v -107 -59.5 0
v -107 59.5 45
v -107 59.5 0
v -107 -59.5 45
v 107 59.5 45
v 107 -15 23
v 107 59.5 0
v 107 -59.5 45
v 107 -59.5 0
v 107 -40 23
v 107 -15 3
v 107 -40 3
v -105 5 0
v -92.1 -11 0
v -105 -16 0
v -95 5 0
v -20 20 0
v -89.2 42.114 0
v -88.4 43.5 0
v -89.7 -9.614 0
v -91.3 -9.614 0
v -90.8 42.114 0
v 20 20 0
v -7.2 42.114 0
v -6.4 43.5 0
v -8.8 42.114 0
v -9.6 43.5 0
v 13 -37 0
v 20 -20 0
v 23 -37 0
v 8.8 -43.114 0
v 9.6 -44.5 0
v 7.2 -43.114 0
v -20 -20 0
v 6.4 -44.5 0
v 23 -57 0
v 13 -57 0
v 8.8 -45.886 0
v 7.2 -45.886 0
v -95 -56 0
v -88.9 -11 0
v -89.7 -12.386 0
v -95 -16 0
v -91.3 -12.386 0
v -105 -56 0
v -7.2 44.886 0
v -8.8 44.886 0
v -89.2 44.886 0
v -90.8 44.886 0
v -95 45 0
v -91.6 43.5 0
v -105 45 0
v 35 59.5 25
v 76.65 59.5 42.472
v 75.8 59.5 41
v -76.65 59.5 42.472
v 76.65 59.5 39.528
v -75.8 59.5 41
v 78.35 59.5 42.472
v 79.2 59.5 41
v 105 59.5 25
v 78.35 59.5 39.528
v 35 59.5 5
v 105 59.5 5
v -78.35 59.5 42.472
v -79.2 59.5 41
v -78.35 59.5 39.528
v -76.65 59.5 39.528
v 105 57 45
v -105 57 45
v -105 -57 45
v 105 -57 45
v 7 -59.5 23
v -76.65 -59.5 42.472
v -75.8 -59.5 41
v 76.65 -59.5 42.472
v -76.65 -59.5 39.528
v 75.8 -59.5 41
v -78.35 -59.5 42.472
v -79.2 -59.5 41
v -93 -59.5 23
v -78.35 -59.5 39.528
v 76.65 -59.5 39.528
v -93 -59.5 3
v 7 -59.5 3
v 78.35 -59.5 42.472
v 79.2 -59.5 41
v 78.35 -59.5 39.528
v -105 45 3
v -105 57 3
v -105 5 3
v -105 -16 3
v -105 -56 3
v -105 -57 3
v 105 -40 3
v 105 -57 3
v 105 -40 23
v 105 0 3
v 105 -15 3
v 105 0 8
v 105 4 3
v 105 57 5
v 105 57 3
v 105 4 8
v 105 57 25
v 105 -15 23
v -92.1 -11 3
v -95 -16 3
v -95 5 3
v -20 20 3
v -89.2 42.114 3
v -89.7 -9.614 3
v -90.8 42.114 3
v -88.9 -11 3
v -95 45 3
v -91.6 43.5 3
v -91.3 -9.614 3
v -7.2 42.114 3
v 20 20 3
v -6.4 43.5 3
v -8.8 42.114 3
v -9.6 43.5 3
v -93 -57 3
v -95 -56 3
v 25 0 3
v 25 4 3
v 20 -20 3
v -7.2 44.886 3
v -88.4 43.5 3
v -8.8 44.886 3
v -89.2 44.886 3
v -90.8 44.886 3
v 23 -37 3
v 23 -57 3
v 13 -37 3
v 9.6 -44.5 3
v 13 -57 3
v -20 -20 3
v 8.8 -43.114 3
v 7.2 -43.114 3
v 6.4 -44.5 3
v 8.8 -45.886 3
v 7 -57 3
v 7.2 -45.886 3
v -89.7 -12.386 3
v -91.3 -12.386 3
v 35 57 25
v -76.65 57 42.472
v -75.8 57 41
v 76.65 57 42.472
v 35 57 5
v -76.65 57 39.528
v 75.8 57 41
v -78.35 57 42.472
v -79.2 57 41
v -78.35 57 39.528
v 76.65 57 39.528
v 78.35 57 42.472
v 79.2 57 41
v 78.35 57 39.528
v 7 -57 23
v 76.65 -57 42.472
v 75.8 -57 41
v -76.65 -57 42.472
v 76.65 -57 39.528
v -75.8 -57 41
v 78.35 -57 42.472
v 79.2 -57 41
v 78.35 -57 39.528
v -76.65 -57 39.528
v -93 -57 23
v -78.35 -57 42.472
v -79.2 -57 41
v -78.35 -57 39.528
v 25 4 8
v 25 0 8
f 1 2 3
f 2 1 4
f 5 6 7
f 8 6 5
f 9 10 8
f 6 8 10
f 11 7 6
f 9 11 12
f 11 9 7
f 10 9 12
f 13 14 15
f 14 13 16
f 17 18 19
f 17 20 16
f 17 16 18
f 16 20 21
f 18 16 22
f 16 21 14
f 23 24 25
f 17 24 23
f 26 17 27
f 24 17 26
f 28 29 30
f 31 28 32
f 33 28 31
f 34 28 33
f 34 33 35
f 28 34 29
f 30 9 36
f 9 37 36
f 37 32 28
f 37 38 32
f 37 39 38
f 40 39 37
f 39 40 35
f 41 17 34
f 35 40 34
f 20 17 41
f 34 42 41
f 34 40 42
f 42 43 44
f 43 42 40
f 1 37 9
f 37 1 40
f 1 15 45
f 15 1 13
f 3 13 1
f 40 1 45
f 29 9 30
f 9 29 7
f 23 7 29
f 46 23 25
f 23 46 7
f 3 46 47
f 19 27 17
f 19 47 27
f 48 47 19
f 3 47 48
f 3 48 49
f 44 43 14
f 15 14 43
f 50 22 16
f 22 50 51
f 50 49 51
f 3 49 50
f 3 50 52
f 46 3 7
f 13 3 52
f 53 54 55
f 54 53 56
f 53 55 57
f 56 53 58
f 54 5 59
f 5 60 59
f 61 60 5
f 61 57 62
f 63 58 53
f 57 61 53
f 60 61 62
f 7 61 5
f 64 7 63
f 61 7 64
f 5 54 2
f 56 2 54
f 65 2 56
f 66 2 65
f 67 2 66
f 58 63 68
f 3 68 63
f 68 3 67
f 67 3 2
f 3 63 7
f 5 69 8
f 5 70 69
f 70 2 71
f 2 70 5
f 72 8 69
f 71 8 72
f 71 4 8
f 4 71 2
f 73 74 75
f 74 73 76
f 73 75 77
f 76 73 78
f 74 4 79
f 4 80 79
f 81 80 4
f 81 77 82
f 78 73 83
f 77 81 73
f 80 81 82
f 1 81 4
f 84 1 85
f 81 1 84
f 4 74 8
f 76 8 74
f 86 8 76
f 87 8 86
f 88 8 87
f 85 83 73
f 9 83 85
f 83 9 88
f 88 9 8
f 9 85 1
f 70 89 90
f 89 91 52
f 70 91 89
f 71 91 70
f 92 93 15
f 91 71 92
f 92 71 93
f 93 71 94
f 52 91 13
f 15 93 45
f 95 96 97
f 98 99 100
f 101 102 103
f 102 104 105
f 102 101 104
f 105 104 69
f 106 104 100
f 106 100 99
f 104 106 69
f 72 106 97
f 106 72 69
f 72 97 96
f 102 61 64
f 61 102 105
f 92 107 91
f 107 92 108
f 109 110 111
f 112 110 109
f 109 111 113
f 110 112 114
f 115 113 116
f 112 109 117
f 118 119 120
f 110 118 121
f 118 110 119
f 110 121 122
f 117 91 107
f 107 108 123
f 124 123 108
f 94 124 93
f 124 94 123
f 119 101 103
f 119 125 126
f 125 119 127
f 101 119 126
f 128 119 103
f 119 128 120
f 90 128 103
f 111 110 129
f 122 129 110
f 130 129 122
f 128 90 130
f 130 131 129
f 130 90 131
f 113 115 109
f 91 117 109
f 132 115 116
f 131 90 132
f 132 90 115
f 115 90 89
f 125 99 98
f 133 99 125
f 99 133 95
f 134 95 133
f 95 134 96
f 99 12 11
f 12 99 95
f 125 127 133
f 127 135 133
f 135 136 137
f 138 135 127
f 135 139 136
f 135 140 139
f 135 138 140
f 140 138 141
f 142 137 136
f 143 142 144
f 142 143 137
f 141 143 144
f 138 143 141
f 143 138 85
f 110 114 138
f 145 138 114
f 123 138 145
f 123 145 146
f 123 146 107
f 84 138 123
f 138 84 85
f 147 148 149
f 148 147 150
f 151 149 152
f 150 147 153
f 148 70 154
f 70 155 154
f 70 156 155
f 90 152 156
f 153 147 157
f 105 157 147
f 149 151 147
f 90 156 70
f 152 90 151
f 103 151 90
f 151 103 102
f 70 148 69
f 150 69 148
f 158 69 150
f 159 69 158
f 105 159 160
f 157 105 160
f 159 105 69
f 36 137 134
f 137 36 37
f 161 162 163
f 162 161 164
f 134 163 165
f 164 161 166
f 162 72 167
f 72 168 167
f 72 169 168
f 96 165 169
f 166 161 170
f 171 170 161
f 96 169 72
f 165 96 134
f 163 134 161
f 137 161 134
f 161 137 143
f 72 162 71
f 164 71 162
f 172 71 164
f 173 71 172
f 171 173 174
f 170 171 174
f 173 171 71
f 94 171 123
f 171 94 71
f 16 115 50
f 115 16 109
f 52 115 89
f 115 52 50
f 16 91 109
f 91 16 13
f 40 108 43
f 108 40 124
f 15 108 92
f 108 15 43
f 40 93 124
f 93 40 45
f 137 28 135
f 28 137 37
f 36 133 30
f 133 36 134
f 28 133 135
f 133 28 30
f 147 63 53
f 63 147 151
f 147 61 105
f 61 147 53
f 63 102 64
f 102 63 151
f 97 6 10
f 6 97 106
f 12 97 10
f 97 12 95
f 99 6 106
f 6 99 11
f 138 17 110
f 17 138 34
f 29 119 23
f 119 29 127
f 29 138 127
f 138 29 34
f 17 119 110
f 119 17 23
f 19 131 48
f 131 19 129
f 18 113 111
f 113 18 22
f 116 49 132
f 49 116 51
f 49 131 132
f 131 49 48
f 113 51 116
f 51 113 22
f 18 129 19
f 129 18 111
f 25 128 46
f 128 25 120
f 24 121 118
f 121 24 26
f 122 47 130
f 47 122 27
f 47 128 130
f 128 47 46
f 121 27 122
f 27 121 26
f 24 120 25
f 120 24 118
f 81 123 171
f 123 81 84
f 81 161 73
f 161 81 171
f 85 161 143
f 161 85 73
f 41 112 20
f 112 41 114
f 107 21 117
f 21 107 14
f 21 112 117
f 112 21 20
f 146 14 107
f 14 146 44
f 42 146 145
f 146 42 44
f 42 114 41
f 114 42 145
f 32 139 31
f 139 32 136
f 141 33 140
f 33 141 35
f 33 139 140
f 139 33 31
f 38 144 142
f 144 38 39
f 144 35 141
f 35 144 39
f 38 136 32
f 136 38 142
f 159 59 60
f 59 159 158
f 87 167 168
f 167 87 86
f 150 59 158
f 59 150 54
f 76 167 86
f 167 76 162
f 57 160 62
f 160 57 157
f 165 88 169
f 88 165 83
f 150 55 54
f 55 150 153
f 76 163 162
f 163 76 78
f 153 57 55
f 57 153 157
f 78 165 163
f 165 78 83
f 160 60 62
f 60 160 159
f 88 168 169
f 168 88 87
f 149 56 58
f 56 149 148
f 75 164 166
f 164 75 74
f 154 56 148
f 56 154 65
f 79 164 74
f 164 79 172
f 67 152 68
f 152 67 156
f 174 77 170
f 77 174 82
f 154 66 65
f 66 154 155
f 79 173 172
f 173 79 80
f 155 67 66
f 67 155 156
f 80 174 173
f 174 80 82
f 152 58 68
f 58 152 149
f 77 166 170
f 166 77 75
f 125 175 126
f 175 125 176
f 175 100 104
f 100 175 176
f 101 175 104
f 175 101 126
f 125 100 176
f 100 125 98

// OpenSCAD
//Housing for electronics

cubus();

module cubus() {
difference() {
    linear_extrude(height = 45, scale = 1) rectangular();
    translate([0, 0, 3])
    linear_extrude(height = 45, scale = 1) rectangular_inside();
//Holes for cables
    translate([-100, 25, -10]) cube([10, 40, 30], center=true);
    translate([-100, -36, -10]) cube([10, 40, 30], center=true);
    translate([18, -47, -10]) cube([10, 20, 30], center=true);
    translate([35, 35, 5]) cube([70, 30, 20]);
//Hole to reach the sd card
  translate([90, -40, 3])
  cube([30, 25, 20]);
//Hole above pi camera
  cube([40, 40, 10], center=true);
//Screw hole for Ramps 1.4
  translate([-90, 43.5, 0]) cylinder(h=10, r=1.6);
  translate([-8, 43.5, 0]) cylinder(h=10, r=1.6);
  //Cut-out and srew holes for Inkshield
  translate([-93, -65, 3]) cube([100, 20, 20]);
  translate([-90.5, -11, 0]) cylinder(h=10, r=1.6);
  translate([8, -44.5, 0]) cylinder(h=10, r=1.6);
  //translate([6, 35, 0]) cylinder(h=10, r=1.6);
//Mounting holes for Raspbery Pi 4
  //translate([43, 48, 0]) cylinder(h=10, r=2.5);
  //translate([43, -20, 0]) cylinder(h=10, r=2.5);  
//Mounting holes for M3 screws
    translate([77.5, 70, 41])
    rotate([90,0,0])
    cylinder(h=150, r=1.7);  
    translate([-77.5, 70, 41])
    rotate([90,0,0])
    cylinder(h=150, r=1.7);
}
//Support Raspberry Pi 4
  translate([25, 0, 0]) cube([80, 4, 8]);
//test RPI
//translate([20, -56.5, 0]) cube([5, 56, 6]);
}
module rectangular() {
    a = 107;
    b = 59.5;
    polygon(points=[[-a,-b],[a,-b],[a,b],[-a,b]]); 
   }
module rectangular_inside() {
    a1 = 105;
    b1 = 57;
    polygon(points=[[-a1,-b1],[a1,-b1],[a1,b1],[-a1,b1]]); 
   }
